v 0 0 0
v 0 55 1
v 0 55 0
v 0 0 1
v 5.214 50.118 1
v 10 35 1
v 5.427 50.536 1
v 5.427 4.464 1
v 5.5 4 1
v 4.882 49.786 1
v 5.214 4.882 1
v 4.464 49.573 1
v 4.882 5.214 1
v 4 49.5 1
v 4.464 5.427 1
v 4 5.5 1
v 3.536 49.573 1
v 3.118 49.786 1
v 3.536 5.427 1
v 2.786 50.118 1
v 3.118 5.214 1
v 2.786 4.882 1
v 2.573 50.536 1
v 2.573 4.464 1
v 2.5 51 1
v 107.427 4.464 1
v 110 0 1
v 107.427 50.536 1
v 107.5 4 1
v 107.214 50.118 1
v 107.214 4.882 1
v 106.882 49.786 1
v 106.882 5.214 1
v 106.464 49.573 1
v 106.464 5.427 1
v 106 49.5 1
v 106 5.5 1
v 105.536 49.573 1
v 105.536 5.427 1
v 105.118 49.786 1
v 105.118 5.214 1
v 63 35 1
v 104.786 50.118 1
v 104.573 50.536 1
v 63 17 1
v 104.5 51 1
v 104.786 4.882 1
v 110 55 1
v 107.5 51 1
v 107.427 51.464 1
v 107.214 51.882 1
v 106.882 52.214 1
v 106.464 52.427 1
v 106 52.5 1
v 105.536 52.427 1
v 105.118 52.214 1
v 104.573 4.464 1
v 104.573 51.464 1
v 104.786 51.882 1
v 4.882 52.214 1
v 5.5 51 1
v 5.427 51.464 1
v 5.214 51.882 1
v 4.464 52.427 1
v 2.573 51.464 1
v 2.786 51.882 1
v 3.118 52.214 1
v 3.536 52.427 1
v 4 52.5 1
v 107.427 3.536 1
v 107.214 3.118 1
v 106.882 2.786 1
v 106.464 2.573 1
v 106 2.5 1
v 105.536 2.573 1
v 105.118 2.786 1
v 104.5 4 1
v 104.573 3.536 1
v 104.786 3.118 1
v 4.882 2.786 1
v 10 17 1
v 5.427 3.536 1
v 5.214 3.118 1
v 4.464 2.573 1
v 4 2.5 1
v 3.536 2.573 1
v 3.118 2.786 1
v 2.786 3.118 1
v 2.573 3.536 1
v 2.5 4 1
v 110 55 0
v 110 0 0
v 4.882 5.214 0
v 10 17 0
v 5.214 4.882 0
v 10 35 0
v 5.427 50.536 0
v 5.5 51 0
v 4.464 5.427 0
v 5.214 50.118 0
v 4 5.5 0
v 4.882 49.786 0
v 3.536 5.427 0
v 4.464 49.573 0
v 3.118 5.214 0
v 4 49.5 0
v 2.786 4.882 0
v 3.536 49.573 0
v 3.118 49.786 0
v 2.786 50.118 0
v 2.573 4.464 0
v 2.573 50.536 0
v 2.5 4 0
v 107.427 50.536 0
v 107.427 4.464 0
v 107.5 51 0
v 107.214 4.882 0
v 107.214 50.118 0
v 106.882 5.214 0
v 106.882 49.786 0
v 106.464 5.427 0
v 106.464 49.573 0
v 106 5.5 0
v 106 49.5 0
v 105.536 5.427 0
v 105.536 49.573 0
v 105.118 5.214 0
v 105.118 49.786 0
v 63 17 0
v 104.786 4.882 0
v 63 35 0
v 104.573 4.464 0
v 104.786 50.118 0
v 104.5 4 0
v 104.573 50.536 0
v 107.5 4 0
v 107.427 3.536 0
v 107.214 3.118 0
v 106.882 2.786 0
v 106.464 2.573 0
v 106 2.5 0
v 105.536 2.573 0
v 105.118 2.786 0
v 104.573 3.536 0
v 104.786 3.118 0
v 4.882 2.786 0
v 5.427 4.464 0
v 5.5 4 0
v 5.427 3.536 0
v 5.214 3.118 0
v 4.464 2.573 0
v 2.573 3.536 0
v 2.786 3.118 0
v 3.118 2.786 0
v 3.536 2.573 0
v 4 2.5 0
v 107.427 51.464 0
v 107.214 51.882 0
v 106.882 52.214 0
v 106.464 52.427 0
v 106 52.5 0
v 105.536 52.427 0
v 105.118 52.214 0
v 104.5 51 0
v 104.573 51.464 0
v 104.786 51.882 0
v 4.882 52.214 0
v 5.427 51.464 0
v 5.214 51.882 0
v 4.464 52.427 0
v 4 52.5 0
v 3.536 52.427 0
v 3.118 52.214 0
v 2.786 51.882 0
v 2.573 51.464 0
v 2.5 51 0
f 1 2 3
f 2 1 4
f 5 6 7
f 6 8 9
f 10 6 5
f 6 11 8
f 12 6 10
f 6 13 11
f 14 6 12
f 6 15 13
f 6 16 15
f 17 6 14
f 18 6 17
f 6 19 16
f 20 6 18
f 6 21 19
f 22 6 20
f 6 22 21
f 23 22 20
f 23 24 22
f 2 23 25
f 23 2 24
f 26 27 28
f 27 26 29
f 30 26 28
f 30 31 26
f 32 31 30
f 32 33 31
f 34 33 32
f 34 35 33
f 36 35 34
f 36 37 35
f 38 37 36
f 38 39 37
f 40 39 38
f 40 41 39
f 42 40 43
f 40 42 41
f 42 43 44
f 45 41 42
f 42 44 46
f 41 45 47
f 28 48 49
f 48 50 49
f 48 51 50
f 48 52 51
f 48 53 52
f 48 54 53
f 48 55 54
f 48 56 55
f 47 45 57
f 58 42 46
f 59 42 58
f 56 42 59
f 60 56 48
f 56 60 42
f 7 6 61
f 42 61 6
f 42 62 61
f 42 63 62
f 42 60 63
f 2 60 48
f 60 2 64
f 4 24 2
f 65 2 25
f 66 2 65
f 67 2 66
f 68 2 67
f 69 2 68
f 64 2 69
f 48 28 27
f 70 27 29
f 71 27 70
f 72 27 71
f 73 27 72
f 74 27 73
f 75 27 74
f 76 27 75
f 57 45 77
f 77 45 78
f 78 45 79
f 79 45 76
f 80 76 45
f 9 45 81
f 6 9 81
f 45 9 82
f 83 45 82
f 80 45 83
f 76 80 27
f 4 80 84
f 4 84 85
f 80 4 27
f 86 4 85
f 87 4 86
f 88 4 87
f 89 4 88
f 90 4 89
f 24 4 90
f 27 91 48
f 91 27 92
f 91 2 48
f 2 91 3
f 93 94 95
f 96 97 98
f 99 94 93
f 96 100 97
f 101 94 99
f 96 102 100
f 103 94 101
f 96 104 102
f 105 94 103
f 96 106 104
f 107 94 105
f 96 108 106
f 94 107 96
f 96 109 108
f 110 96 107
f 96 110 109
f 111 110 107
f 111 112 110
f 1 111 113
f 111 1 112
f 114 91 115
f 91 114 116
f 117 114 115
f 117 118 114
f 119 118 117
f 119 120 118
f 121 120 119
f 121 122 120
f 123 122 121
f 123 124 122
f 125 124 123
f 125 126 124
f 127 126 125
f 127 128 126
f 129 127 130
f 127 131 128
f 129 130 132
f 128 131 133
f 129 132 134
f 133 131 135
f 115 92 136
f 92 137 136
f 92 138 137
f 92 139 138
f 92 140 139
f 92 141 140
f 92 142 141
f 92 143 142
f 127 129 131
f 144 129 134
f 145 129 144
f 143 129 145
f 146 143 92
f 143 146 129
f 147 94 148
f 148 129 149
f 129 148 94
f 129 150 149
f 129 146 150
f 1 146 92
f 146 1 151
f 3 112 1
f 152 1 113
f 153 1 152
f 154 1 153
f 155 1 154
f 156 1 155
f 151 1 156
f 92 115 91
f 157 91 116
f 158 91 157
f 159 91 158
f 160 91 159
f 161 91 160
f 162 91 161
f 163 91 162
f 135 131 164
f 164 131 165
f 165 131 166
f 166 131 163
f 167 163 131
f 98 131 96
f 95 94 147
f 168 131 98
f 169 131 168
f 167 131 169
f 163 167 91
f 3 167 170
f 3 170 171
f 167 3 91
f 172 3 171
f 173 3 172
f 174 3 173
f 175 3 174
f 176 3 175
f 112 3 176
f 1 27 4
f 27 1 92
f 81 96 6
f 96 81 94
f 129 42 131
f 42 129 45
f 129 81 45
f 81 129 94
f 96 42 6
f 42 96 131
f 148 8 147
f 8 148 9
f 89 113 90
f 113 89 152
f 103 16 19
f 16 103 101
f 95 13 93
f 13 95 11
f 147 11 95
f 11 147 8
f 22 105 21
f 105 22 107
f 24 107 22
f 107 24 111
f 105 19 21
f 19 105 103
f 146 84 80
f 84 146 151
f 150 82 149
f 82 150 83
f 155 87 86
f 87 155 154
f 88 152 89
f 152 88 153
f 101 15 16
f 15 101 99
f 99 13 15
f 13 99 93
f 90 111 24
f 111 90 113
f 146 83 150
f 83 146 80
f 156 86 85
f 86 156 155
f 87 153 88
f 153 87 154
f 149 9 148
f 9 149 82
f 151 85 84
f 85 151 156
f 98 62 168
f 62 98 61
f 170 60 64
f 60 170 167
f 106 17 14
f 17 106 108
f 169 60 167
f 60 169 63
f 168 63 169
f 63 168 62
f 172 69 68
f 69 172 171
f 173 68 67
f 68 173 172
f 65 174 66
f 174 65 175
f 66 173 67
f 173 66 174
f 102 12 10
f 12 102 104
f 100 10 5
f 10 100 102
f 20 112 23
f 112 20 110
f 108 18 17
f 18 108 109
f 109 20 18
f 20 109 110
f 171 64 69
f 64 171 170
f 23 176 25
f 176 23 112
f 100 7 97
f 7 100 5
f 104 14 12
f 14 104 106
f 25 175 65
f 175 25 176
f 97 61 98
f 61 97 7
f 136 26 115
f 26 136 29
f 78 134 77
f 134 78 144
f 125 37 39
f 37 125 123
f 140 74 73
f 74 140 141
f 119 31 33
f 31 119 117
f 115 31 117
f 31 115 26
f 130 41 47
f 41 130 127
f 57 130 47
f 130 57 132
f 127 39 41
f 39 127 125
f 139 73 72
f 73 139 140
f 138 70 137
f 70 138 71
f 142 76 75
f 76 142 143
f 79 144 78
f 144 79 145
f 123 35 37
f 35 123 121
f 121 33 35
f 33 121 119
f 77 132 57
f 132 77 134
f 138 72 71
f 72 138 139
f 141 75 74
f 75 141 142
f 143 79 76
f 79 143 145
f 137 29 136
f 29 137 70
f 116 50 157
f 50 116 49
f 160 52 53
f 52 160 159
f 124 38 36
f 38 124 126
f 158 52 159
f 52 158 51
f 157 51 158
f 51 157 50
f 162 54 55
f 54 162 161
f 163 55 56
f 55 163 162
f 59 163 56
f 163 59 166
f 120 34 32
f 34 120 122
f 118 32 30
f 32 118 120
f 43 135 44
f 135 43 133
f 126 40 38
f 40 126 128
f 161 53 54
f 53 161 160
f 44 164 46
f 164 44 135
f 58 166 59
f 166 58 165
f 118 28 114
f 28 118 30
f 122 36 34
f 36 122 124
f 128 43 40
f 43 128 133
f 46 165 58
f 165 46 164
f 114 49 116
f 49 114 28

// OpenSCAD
module body() {
    color("Red") cube([110,55,1]); 
}

module bigFrame() {
    color("Red") cube([53,18,10]); 
}

module smallFrame() {
    color("Red") cube([18,14,10]); 
}

module hole() {
    color("blue") cylinder($fn=20, h=10, r=1.5);
}

module object(){
    difference() {
    body();
    translate([10,17,-5]) bigFrame();
    //translate([77,10,-5]) smallFrame();
    translate([4,4,-5]) hole();
    translate([4,51,-5]) hole();
    translate([106,4,-5]) hole();
    translate([106,51,-5]) hole();
    }    
}

object();

/*
difference() {
    cube(30, center=true);
    sphere(20);
}
translate([0, 0, 30]) {
    cylinder(h=40, r=10);
}
    */
